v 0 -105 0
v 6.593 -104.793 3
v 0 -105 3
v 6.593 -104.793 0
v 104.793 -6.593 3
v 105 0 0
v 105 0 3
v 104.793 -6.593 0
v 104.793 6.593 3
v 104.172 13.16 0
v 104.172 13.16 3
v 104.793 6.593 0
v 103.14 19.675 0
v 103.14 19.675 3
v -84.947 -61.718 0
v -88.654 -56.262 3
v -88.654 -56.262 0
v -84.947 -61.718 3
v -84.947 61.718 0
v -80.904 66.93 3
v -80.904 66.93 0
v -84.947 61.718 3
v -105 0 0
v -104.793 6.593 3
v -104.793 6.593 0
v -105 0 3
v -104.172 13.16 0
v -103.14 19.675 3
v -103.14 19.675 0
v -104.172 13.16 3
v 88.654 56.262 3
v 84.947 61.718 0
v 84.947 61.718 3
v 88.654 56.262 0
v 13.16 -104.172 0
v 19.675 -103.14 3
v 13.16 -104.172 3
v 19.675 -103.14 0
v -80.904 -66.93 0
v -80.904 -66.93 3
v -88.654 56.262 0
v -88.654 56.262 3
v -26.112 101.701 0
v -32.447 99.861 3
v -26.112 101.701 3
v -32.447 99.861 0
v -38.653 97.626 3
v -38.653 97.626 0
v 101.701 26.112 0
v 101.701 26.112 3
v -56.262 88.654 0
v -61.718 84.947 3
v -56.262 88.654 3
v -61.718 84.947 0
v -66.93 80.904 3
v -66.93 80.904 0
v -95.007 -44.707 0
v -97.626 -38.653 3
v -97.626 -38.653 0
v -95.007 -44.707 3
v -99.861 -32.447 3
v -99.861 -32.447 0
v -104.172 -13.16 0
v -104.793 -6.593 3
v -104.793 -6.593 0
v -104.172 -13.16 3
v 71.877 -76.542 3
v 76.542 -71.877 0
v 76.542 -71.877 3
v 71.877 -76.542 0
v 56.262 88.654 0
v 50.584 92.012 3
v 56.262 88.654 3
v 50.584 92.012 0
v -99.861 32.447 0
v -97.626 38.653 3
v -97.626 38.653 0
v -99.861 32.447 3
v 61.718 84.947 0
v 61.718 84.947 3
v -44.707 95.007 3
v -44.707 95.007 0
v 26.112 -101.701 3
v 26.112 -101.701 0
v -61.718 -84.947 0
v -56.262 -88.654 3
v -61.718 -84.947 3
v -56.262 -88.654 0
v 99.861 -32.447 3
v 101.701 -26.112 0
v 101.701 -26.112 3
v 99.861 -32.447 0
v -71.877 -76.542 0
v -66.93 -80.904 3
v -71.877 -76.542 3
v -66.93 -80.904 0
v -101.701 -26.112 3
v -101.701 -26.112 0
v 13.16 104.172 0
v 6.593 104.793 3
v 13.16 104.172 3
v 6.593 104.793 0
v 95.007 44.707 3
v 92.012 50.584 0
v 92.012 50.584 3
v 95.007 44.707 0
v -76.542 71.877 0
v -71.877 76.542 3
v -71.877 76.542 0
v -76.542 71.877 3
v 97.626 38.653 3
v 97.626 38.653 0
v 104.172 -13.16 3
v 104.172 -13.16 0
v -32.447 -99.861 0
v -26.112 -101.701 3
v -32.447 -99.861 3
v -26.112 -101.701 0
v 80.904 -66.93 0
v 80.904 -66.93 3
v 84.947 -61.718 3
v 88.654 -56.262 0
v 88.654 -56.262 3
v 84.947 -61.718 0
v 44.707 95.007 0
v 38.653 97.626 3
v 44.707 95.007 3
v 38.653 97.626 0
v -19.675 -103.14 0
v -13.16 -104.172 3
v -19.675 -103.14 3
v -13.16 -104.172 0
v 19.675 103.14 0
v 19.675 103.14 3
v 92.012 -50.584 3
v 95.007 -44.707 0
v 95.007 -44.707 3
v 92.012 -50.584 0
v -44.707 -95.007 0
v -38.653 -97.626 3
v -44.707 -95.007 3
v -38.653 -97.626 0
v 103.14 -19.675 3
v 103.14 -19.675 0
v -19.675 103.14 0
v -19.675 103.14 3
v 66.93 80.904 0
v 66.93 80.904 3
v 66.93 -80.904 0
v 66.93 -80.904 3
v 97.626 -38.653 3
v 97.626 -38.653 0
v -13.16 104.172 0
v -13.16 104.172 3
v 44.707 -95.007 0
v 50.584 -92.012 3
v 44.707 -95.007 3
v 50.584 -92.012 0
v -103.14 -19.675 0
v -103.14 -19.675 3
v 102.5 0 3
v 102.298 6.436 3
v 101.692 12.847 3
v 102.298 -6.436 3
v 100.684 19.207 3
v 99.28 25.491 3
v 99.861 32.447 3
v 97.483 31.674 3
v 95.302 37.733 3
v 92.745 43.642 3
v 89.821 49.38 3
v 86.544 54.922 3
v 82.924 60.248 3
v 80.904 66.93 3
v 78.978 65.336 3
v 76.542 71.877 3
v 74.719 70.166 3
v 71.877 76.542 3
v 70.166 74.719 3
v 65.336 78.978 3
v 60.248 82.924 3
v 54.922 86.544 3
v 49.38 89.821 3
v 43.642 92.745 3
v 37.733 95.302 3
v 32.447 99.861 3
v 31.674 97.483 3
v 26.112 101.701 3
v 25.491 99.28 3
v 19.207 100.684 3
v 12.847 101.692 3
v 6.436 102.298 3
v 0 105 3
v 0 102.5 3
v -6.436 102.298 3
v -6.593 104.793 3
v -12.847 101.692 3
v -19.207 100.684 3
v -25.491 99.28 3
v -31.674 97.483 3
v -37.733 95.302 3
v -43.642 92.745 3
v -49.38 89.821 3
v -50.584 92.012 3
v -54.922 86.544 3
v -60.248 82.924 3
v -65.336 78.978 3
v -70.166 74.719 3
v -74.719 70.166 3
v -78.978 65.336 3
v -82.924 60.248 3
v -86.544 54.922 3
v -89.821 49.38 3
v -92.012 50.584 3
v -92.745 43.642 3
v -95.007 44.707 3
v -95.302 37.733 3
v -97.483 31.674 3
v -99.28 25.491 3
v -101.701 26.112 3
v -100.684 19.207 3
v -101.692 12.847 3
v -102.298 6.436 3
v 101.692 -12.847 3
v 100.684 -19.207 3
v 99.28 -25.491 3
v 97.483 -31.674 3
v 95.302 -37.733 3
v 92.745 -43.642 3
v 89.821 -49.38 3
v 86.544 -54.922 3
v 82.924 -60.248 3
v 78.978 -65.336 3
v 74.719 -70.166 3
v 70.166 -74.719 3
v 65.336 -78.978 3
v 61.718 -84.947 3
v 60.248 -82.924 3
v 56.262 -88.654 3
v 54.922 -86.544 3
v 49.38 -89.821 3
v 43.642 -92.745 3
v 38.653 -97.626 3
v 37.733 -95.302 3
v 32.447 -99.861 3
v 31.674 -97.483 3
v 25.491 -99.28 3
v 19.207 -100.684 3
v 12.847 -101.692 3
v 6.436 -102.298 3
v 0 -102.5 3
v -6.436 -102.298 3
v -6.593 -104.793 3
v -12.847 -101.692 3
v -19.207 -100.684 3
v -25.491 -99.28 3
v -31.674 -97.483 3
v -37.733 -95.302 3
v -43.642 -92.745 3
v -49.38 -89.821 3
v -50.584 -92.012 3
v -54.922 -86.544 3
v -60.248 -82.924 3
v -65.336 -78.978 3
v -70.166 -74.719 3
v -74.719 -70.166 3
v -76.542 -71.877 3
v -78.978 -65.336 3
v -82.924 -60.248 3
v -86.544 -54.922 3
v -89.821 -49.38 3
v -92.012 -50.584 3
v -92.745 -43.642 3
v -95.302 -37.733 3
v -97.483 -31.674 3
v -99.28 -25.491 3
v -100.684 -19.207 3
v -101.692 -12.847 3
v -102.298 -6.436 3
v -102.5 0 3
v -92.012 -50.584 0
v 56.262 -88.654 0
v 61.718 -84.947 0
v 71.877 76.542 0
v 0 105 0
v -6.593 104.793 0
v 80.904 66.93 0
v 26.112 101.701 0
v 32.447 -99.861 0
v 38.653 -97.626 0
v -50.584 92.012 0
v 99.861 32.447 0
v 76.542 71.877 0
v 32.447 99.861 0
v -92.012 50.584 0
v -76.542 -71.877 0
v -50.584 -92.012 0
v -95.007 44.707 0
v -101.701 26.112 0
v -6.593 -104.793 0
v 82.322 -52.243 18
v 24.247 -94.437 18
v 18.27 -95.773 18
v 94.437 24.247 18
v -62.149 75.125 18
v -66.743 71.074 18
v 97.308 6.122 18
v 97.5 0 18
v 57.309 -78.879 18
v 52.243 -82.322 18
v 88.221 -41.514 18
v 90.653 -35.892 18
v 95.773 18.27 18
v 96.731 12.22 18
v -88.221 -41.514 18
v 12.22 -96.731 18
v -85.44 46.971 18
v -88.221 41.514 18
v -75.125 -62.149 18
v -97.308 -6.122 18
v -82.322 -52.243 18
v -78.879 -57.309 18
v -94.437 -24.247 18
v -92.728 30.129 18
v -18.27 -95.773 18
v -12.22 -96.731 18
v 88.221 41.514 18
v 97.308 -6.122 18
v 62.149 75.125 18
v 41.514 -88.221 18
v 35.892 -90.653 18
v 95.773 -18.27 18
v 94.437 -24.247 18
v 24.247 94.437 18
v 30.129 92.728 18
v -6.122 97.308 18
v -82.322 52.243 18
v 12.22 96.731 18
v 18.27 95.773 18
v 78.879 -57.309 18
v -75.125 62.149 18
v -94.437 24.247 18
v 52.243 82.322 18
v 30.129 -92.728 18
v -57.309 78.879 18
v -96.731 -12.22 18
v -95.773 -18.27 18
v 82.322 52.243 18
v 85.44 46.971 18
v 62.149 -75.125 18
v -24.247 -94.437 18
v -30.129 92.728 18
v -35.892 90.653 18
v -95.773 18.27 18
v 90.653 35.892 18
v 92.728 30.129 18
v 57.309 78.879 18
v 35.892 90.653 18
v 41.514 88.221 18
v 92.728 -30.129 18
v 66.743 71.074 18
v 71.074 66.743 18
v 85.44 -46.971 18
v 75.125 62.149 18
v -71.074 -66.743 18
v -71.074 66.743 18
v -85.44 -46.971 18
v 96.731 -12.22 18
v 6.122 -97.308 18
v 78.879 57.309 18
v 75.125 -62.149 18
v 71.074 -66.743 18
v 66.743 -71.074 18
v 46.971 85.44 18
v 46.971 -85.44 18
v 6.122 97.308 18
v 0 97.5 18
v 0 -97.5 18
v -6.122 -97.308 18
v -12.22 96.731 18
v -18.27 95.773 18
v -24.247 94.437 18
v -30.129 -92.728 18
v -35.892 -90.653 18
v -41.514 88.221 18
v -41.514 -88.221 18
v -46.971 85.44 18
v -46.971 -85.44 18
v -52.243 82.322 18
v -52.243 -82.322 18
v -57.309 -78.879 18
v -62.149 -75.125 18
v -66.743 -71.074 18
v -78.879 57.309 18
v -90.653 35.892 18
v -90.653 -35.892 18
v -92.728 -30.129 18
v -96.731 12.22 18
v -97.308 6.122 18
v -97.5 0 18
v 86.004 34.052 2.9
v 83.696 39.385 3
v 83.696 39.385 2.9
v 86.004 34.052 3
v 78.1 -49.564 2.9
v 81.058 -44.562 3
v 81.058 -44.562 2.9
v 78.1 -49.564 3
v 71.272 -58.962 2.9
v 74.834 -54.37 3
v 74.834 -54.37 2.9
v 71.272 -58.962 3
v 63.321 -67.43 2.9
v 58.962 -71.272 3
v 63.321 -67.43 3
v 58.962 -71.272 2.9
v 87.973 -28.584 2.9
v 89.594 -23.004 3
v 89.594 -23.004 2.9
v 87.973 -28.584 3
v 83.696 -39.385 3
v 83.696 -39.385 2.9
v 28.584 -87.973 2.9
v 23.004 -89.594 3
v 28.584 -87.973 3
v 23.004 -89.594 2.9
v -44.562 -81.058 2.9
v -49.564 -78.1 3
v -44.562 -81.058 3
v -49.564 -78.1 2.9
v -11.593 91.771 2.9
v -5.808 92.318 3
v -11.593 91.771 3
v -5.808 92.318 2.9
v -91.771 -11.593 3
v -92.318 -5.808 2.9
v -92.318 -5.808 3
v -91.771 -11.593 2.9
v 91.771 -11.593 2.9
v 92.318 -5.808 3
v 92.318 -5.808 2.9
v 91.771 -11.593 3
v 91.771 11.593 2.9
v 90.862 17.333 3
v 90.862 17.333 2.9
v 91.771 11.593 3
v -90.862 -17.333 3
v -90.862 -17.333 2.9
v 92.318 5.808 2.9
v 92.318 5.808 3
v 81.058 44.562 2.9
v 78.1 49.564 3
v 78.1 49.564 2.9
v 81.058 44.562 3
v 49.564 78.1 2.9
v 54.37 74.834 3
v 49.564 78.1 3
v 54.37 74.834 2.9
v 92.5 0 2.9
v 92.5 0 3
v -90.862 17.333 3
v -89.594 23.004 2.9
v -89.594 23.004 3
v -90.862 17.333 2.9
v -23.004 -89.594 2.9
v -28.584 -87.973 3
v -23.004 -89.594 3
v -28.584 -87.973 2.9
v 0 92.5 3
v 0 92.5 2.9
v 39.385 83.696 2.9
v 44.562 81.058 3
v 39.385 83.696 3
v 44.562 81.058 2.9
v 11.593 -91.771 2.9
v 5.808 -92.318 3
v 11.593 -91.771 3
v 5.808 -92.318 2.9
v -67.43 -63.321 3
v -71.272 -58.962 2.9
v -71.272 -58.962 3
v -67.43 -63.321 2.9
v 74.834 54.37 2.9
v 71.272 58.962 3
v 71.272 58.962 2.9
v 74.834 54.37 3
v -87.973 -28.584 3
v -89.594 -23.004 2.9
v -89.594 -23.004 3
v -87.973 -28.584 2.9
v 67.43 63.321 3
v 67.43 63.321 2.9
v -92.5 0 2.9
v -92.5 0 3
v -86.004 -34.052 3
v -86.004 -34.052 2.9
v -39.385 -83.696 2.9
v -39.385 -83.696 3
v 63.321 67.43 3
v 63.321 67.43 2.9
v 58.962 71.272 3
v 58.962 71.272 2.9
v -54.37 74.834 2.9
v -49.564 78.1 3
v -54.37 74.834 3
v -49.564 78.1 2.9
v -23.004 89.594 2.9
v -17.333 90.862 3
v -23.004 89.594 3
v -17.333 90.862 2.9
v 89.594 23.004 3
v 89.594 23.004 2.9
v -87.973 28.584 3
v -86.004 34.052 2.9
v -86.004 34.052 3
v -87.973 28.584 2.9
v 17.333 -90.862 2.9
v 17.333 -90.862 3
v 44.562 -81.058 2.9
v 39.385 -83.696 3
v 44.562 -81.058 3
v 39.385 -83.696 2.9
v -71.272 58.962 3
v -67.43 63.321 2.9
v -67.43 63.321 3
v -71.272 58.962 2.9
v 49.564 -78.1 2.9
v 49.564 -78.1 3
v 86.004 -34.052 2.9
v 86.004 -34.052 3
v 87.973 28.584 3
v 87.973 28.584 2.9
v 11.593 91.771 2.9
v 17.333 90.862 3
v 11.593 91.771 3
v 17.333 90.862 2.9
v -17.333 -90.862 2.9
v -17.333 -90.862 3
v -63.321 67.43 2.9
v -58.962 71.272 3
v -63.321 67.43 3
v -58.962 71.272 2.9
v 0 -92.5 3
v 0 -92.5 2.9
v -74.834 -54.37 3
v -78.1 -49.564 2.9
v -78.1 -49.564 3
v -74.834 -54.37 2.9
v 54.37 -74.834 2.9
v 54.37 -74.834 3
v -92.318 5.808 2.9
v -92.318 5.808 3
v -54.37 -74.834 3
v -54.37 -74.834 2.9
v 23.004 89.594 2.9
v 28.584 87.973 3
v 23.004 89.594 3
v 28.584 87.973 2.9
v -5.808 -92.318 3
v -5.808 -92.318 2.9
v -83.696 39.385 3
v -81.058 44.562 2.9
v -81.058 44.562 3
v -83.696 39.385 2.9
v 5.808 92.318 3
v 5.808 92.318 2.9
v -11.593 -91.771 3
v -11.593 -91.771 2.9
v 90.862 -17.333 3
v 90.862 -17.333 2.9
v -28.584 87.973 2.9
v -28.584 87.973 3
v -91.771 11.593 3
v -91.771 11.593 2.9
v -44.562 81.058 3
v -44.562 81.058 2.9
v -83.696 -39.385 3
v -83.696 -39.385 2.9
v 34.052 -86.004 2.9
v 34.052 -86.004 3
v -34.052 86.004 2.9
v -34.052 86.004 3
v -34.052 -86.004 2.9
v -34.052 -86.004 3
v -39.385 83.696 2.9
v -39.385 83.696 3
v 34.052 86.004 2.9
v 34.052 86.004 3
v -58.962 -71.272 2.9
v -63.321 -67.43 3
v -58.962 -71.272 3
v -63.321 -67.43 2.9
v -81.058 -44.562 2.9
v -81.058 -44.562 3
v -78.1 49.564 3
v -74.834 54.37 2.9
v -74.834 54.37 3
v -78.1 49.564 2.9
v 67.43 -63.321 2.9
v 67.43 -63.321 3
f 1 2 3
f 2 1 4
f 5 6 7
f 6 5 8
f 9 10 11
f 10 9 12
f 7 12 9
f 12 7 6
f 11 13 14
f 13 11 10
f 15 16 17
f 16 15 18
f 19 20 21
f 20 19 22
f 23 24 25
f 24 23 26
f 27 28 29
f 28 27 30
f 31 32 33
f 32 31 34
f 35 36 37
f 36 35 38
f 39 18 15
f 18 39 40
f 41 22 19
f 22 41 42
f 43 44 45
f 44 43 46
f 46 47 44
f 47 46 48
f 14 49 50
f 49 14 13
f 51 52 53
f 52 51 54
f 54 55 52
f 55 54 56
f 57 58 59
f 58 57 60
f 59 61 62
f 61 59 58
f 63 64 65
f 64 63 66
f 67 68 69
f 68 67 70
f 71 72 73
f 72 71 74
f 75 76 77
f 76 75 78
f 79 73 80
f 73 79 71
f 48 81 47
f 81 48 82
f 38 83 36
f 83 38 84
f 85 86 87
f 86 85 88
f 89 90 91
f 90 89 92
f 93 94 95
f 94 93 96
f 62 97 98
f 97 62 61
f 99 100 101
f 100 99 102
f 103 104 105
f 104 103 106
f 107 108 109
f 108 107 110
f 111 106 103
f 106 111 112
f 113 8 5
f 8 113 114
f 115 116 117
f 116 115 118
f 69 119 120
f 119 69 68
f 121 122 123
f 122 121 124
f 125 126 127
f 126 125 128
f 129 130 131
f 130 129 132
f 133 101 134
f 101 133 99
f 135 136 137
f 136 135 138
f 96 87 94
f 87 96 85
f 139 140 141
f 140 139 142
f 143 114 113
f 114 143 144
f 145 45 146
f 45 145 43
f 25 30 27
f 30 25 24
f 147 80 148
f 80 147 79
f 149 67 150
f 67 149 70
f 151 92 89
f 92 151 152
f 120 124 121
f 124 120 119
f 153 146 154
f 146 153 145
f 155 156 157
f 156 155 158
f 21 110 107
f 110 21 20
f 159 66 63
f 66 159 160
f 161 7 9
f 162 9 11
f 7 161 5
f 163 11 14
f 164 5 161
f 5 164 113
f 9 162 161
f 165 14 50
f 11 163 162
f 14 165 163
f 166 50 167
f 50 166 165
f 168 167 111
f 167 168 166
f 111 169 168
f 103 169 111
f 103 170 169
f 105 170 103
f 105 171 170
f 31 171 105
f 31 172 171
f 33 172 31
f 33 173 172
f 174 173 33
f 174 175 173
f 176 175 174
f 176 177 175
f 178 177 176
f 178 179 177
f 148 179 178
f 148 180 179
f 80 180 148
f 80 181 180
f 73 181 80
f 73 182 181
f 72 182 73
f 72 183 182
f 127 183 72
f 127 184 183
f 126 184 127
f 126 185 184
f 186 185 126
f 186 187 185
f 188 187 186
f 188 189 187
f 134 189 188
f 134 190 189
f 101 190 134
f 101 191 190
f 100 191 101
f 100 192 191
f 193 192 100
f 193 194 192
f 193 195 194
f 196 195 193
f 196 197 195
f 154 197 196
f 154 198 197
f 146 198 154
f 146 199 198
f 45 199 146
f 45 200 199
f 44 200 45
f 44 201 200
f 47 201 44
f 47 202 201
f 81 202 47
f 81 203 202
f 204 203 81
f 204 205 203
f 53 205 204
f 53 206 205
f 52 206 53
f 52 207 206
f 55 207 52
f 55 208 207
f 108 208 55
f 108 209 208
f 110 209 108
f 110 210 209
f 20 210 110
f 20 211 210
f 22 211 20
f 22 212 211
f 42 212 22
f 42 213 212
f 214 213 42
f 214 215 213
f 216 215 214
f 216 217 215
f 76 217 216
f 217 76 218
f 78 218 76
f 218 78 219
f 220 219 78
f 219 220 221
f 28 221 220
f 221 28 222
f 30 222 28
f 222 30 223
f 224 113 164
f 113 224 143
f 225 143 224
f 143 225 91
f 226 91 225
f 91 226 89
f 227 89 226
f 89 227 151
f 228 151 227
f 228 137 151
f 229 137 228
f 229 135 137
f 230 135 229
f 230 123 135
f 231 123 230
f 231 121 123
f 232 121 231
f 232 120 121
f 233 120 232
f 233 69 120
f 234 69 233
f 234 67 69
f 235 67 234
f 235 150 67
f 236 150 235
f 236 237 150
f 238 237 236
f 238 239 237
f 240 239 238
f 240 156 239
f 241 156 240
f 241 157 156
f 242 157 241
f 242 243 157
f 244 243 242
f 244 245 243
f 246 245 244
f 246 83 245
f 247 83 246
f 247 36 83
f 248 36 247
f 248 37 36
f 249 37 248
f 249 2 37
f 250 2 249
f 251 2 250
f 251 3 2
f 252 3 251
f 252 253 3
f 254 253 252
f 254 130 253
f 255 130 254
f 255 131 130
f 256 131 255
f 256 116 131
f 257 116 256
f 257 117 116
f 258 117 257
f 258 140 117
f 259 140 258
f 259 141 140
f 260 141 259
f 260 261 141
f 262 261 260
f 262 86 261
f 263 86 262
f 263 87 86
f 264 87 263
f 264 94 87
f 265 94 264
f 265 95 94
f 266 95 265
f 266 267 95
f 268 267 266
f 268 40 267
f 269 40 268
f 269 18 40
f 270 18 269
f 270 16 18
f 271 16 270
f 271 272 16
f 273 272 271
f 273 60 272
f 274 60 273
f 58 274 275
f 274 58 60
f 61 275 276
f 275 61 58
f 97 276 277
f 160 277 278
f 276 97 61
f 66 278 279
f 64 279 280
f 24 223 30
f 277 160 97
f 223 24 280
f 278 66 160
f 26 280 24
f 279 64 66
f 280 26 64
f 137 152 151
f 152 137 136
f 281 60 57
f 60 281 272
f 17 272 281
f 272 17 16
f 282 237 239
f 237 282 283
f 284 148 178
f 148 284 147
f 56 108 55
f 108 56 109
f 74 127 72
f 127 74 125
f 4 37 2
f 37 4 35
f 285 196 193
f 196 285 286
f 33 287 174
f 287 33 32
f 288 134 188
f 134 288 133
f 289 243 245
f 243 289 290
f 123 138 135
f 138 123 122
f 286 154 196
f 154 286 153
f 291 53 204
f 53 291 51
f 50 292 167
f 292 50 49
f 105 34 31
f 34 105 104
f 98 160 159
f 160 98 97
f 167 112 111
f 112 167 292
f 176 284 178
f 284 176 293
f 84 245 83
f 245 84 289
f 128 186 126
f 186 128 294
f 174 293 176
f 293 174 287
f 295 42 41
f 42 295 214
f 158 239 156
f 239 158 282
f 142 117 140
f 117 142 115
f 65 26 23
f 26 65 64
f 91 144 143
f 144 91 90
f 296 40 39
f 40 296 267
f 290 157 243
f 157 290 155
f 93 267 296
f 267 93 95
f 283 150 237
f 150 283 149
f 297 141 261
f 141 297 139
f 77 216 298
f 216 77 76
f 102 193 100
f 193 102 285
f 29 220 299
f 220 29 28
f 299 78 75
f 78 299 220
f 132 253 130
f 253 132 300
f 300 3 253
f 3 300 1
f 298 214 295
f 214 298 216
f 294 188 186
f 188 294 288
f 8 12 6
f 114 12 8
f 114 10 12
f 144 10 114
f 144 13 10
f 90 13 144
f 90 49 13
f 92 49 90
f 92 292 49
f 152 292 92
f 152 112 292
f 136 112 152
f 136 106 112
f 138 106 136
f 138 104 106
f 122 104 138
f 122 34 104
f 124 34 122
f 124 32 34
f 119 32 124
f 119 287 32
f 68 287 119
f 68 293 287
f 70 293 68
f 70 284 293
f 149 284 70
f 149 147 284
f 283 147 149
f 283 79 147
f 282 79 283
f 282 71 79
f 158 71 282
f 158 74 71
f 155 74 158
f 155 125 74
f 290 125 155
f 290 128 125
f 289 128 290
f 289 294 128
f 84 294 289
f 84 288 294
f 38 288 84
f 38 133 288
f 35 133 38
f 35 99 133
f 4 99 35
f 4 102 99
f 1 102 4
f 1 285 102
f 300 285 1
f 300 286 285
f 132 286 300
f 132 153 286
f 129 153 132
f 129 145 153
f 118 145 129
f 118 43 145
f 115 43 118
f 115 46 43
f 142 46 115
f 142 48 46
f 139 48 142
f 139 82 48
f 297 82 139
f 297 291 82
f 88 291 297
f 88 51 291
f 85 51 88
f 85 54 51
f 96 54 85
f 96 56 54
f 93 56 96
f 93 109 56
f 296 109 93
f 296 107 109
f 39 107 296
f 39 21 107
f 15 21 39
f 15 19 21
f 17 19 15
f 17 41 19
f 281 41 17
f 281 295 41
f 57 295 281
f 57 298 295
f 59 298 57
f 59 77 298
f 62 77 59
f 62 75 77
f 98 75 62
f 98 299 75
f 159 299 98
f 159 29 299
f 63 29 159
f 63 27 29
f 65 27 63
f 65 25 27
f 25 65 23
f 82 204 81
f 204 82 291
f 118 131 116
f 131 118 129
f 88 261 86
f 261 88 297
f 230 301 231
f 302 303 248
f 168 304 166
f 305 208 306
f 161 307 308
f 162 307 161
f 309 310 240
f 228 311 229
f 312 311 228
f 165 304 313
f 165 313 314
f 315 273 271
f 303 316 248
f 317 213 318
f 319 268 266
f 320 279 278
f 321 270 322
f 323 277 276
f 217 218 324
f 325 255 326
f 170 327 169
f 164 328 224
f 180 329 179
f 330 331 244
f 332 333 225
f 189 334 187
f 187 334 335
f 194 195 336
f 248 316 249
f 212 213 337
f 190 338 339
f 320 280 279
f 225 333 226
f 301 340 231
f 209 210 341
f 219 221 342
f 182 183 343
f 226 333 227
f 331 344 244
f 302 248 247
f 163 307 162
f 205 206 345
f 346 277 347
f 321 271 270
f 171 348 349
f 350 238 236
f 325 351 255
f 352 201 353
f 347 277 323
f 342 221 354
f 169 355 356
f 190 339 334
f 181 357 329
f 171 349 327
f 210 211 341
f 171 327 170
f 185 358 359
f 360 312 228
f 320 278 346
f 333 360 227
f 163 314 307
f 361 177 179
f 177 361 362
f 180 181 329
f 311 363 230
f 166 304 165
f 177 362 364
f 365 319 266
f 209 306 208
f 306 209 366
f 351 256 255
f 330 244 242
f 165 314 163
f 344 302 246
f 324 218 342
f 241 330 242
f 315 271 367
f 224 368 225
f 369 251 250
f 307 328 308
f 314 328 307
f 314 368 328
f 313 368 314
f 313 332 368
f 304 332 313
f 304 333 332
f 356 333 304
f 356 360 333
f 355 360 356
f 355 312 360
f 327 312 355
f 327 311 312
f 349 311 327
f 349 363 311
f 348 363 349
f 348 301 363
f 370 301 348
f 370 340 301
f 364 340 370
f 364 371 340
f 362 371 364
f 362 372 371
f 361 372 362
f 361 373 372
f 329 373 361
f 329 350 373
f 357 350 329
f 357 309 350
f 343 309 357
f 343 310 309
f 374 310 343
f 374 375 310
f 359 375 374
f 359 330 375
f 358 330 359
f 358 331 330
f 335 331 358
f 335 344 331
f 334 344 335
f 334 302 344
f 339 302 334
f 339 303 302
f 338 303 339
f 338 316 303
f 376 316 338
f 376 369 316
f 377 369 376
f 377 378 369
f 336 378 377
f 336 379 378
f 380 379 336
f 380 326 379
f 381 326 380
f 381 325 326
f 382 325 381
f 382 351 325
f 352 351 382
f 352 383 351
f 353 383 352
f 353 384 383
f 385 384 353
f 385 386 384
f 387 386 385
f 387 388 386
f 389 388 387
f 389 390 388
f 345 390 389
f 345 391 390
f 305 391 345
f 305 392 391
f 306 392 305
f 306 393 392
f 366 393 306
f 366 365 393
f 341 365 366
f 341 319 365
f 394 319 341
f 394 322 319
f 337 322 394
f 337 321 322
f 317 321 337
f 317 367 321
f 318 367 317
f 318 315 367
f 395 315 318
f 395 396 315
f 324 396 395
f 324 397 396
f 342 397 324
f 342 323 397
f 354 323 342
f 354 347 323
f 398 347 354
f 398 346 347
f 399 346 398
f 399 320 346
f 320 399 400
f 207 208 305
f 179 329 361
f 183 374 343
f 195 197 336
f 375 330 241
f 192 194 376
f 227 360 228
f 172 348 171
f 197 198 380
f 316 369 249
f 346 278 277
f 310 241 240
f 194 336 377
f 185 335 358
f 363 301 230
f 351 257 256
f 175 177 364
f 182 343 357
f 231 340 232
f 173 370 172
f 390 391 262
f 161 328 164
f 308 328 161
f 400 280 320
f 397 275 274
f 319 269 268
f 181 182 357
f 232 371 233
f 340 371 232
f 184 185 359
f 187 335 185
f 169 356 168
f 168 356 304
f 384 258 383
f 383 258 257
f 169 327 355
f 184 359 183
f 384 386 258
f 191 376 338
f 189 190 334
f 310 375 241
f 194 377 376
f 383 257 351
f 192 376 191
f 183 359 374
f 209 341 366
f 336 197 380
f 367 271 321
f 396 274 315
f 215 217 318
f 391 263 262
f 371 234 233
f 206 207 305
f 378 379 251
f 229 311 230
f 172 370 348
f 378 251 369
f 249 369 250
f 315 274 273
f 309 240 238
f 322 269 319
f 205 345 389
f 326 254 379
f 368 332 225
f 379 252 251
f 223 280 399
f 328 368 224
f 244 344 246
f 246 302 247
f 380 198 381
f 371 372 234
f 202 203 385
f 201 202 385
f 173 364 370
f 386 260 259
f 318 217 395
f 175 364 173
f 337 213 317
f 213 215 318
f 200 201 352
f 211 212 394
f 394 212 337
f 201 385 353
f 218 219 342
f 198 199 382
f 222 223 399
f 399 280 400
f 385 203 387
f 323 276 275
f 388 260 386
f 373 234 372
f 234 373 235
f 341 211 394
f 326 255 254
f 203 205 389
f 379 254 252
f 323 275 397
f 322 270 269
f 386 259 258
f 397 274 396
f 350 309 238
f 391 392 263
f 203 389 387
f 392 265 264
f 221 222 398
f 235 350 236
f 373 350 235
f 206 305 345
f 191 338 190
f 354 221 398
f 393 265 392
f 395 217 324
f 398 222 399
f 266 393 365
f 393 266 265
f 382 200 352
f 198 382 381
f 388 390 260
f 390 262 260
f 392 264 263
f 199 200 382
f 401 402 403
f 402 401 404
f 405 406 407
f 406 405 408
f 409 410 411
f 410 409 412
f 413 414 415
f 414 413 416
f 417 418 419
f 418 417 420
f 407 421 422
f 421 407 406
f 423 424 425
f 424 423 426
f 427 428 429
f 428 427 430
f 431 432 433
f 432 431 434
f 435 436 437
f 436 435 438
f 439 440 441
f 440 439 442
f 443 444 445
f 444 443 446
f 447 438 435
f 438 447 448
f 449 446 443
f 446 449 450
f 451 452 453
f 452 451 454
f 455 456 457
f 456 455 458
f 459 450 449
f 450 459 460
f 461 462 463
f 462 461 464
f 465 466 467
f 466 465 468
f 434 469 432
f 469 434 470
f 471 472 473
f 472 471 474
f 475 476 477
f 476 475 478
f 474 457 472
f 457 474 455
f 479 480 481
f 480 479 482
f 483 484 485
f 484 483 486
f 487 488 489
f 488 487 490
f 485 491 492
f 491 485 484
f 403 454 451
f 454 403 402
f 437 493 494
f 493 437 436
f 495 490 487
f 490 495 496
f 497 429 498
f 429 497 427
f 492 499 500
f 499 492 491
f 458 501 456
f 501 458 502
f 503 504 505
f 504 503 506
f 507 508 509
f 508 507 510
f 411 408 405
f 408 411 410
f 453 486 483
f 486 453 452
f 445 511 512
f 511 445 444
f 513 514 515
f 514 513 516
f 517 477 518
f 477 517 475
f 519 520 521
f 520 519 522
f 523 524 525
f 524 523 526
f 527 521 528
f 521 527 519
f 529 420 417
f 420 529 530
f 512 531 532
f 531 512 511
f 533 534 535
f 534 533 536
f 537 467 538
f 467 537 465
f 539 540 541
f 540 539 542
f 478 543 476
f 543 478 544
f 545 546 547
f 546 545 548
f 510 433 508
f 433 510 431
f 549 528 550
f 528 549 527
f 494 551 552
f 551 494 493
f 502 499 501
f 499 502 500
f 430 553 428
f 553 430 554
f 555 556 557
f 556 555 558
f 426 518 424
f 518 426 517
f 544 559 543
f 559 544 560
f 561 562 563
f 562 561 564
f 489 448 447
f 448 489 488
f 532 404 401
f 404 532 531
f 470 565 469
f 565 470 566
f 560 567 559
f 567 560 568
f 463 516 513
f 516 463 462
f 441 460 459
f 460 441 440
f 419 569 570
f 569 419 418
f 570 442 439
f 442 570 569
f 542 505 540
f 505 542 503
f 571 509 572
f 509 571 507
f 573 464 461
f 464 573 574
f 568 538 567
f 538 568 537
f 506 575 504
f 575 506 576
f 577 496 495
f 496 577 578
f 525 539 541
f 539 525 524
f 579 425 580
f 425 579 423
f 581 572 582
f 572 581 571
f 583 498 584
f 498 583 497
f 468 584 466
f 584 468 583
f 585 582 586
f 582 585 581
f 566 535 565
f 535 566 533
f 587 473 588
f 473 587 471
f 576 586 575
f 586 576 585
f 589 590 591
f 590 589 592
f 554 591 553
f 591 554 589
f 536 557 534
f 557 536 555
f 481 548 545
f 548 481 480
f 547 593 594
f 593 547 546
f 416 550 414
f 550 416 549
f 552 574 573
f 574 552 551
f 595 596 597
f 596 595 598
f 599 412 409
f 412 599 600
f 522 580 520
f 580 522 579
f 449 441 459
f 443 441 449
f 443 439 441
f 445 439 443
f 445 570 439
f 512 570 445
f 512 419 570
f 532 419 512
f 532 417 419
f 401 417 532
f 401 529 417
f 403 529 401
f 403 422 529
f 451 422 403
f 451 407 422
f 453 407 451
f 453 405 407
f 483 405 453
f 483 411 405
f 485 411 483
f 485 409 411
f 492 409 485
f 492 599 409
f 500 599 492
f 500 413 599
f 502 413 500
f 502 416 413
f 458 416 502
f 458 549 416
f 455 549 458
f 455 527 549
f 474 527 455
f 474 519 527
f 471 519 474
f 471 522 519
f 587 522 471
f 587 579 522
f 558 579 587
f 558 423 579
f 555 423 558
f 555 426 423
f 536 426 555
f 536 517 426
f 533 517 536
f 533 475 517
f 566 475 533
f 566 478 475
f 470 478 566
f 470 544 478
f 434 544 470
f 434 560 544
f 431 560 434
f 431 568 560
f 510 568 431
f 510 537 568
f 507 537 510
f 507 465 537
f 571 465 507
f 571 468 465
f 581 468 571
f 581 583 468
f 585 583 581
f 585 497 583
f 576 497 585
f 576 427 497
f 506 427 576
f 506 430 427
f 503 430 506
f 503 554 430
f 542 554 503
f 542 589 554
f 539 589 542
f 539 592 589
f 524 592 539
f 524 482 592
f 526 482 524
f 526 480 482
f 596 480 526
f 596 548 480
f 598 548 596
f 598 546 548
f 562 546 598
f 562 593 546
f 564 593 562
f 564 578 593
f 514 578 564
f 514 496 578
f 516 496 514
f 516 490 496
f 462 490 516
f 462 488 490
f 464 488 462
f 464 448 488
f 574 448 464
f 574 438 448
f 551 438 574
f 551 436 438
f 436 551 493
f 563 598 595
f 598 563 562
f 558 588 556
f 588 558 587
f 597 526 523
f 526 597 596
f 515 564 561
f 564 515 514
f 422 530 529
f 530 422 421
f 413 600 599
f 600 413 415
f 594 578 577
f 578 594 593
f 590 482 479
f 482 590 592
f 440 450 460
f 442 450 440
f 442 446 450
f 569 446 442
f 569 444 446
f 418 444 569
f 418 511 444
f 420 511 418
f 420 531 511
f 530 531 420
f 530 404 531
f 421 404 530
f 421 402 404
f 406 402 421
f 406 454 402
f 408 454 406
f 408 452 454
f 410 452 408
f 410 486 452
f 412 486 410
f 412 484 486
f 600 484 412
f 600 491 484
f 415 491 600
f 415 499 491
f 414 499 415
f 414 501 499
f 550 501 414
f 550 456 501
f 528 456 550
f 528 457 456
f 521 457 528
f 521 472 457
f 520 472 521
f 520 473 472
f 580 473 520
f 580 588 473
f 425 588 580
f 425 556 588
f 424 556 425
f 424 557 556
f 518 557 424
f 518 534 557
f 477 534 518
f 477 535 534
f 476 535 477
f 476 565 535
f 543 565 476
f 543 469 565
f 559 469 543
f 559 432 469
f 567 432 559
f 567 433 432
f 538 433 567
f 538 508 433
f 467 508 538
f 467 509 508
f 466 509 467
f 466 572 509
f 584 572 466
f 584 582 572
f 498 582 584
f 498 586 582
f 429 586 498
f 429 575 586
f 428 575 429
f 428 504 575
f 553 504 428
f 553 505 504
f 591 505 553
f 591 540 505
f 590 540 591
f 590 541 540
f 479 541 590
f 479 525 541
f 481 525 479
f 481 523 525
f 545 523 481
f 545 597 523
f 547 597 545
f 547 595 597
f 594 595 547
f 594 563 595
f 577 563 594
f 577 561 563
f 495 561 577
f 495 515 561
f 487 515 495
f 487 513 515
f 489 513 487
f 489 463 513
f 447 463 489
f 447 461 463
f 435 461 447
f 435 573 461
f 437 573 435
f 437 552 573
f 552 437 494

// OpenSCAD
// Euler's Disk Mirror Support Inlay
// 3D-druckbare Stütze für konkaven Grafenspiegel
// 
// Dieser Support stabilisiert einen konkaven 20cm Spiegel von unten
// und gibt ihm eine ebene Standfläche

// ===== PARAMETER =====
// Alle Maße in mm

// Spiegel-Spezifikationen
mirror_diameter = 200;        // Durchmesser des Spiegels: 20 cm
edge_height = 15;             // Höhe am Rand: 1.5 cm vom Boden
center_height = 0;            // Höhe in der Mitte (Referenzpunkt)

// Support-Spezifikationen
support_diameter = 195;       // Etwas kleiner als Spiegel für gute Passung
support_thickness = 3;        // Dicke des Support-Materials
wall_thickness = 5;           // Dicke der Außenwand
base_diameter = 210;          // Durchmesser der Basis (größer für Stabilität)
base_thickness = 3;           // Dicke der Basis

// Konkave Kurve - Annahme: leicht sphärische Konkavität
// Wenn der Rand 15mm höher ist als die Mitte, berechnen wir einen Radius
// Für eine flache Konkavität nehmen wir einen großen Radius
concave_radius = 3000;        // Großer Radius für sanfte Kurve

// Qualitätseinstellungen
$fn = 100;                    // Anzahl der Fragmente für glatte Kurven

// ===== HAUPTMODELL =====

module concave_support() {
    difference() {
        // Basis mit Außenwand
        union() {
            // Flache kreisförmige Basis
            cylinder(h = base_thickness, r = base_diameter/2);
            
            // Außenwand für zusätzliche Stabilität
            translate([0, 0, base_thickness])
            cylinder(h = edge_height, r = support_diameter/2 + wall_thickness, r2 = support_diameter/2);
        }
        
        // Entferne das Innere, aber lasse eine konkave Oberfläche
        translate([0, 0, base_thickness - 0.1])
        cylinder(h = edge_height + 1, r = support_diameter/2 - wall_thickness);
    }
    
    // Konkave Stützfläche - invertierte Sphäre die zur Spiegelform passt
    translate([0, 0, base_thickness]) {
        difference() {
            // Füllzylinder bis zur Randhöhe
            cylinder(h = edge_height, r = support_diameter/2);
            
            // Konkave Aussparung (Sphäre von oben)
            translate([0, 0, edge_height + concave_radius])
            sphere(r = concave_radius);
        }
    }
    
    // Verstärkungsrippen für zusätzliche Stabilität
    for (angle = [0:45:315]) {
        rotate([0, 0, angle])
        translate([0, -wall_thickness/4, base_thickness])
        cube([support_diameter/2 - wall_thickness, wall_thickness/2, edge_height]);
    }
}

// ===== ALTERNATIVE: VEREINFACHTE VERSION =====
// Kommentieren Sie das obige Modell aus und verwenden Sie dieses für eine einfachere Version

module simple_concave_support() {
    difference() {
        union() {
            // Basis
            cylinder(h = base_thickness, r = base_diameter/2);
            
            // Hauptkörper - konischer Übergang
            translate([0, 0, base_thickness])
            cylinder(h = edge_height, r1 = support_diameter/2, r2 = support_diameter/2 - 5);
        }
        
        // Innere konkave Form
        translate([0, 0, base_thickness + edge_height + concave_radius])
        sphere(r = concave_radius);
        
        // Leichtere Konstruktion - Aussparungen im Boden
        for (angle = [0:60:300]) {
            rotate([0, 0, angle])
            translate([support_diameter/3, 0, -0.5])
            cylinder(h = base_thickness + 1, r = 15);
        }
    }
}

// ===== RENDERING =====
// Wählen Sie welches Modell gerendert werden soll

concave_support();  // Haupt-Version mit Rippen
//simple_concave_support();  // Vereinfachte Version

// ===== HINWEISE FÜR DEN DRUCK =====
// 1. Material: PLA oder PETG empfohlen
// 2. Schichthöhe: 0.2mm für gute Balance zwischen Qualität und Geschwindigkeit
// 3. Infill: 20-30% für ausreichende Stabilität
// 4. Supports: Wahrscheinlich nicht nötig bei diesem Design
// 5. Bett-Haftung: Brim empfohlen für große Grundfläche
// 6. Orientierung: Mit der Basis auf dem Druckbett (wie modelliert)
